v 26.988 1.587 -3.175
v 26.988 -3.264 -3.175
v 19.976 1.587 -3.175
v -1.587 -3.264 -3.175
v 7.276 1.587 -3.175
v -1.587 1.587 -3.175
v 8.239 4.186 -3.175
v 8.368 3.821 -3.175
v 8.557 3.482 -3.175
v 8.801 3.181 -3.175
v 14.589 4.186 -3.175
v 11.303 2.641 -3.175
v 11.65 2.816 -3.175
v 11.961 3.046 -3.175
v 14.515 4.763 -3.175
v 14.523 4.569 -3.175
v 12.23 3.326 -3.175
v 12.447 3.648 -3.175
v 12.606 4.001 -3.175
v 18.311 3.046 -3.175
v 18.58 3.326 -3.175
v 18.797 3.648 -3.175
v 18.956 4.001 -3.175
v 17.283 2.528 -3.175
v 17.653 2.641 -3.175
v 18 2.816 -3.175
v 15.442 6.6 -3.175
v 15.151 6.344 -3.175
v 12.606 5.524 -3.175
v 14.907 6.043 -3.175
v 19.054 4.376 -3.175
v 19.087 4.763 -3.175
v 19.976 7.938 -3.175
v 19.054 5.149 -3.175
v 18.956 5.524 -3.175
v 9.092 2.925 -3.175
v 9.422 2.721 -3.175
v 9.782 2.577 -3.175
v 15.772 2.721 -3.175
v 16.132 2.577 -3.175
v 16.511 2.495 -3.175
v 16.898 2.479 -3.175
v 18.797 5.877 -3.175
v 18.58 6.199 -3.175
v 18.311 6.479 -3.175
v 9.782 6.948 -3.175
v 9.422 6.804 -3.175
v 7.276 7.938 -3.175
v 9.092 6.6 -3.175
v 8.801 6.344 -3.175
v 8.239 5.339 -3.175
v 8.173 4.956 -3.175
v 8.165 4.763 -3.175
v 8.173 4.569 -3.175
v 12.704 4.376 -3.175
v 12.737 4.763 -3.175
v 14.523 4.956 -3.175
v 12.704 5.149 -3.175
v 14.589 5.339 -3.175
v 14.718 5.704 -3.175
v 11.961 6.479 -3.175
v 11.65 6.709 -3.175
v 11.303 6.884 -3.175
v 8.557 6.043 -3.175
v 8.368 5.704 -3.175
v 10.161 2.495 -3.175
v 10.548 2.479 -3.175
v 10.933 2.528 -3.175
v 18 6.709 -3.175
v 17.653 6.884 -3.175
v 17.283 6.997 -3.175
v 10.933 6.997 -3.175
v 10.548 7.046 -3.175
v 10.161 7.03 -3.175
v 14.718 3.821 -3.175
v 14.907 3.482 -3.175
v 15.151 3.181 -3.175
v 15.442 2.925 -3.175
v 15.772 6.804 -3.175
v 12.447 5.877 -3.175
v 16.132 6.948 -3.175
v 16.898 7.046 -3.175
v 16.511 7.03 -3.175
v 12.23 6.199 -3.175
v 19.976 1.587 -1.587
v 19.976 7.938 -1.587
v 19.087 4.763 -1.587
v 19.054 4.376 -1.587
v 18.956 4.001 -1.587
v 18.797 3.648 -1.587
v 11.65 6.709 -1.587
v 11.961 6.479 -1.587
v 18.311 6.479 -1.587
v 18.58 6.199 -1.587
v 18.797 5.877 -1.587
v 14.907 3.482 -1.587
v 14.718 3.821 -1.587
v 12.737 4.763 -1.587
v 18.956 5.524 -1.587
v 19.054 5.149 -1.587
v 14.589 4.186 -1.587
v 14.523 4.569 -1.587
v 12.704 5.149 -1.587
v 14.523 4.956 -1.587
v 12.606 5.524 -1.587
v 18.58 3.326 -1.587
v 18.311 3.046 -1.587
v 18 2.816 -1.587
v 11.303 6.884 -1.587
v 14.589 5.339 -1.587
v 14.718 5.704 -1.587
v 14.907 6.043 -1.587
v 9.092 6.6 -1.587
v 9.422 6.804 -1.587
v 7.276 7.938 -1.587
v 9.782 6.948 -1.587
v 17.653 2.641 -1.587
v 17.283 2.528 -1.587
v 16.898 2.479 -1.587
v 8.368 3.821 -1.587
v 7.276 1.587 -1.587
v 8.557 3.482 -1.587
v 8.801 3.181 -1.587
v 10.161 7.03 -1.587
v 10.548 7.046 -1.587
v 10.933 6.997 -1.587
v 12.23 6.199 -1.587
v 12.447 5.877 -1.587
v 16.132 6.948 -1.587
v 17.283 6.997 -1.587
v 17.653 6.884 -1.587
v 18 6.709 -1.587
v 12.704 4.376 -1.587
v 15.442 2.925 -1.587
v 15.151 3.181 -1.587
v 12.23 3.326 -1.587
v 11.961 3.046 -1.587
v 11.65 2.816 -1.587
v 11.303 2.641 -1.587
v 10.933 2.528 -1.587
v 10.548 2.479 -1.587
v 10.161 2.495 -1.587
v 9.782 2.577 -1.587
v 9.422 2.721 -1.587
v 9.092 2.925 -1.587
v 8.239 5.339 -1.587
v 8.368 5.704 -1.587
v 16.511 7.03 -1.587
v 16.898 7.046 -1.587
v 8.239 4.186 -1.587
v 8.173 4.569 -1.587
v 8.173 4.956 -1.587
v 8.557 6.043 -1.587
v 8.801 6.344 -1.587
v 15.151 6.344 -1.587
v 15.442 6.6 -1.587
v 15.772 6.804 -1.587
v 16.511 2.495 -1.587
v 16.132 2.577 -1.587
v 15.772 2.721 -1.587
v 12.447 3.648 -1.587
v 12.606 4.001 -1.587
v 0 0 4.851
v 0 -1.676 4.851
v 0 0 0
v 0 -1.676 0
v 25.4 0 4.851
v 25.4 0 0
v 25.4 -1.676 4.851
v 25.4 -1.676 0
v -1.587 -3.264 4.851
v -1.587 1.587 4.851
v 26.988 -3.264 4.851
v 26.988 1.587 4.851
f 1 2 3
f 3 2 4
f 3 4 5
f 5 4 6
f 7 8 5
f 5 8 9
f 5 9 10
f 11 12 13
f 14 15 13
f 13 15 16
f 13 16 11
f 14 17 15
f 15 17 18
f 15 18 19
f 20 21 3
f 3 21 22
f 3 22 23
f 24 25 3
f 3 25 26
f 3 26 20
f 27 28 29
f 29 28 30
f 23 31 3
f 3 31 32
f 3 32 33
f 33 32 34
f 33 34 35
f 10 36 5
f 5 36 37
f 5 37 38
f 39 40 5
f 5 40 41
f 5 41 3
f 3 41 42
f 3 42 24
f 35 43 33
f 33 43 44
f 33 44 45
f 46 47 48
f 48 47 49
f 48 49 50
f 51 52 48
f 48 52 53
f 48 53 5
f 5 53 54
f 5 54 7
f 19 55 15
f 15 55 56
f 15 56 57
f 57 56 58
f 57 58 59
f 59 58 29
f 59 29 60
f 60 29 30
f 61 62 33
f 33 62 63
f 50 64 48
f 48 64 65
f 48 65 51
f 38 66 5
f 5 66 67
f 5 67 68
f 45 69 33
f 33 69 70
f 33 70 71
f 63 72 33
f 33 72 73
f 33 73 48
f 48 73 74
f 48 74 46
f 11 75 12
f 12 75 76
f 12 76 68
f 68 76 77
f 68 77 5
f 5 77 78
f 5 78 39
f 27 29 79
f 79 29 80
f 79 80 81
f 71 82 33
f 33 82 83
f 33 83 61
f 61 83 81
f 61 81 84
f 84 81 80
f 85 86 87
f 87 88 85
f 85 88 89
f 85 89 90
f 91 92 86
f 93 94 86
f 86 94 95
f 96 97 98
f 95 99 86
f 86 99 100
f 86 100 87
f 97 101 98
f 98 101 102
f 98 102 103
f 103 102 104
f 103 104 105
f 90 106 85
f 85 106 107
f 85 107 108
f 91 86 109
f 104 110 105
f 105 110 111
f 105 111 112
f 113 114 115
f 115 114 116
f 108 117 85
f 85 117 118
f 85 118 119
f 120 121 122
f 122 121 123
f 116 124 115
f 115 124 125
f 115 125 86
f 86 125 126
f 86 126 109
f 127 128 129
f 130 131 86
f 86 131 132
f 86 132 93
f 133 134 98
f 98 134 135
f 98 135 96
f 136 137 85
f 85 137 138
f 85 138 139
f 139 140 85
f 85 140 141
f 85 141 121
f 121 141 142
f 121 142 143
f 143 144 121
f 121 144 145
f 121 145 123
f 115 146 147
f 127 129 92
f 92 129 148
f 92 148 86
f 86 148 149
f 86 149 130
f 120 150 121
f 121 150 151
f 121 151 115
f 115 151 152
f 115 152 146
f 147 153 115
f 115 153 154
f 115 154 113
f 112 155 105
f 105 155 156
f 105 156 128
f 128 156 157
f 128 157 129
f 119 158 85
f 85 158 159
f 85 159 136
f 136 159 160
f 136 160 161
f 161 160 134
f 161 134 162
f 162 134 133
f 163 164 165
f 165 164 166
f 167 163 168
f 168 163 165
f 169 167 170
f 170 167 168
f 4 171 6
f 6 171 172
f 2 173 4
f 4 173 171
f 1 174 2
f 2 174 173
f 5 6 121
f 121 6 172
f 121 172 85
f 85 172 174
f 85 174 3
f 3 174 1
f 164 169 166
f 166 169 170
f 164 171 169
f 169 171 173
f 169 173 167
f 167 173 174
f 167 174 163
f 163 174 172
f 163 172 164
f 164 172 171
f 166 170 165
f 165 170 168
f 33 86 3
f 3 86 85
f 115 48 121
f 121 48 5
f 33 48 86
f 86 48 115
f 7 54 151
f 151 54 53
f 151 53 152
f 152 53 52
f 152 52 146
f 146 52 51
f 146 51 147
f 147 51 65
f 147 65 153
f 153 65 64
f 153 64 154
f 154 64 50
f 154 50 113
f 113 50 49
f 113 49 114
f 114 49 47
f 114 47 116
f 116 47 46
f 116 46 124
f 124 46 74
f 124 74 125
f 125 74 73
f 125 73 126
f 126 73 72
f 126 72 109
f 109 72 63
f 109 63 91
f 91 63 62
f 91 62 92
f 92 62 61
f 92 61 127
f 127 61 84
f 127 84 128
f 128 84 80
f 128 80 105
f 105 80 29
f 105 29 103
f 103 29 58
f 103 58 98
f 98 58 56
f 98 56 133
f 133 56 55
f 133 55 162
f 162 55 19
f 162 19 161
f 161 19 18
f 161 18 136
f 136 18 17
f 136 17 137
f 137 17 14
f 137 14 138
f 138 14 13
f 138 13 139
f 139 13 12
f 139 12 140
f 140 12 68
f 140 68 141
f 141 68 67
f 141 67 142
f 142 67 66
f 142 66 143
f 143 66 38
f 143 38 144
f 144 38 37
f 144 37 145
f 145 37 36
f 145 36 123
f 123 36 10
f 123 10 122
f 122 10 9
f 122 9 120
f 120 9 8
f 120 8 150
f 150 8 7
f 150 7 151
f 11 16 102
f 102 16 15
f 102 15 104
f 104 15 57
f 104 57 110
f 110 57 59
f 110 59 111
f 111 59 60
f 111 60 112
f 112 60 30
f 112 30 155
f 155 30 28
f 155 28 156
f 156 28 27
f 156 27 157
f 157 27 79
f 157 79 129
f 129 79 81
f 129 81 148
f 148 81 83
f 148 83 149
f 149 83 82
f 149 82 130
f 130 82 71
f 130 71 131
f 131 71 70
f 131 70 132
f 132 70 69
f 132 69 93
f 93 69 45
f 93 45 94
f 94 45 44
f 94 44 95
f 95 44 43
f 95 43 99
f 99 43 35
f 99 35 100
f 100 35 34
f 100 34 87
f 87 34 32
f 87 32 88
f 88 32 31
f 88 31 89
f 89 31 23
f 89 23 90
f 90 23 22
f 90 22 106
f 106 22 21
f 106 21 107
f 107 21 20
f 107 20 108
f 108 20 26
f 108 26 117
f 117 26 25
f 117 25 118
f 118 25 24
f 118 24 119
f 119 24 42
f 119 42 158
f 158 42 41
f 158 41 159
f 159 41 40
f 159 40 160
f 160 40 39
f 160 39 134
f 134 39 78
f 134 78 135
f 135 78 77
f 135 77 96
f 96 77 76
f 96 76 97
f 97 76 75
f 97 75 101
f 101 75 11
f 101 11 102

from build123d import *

# Parameters (mm, degrees)
SKETCH1_W           = 1.5875
SKETCH1_H           = 1.5875
BOSS_EXTRUDE1_DEPTH = 4.8514
SKETCH2_W           = 28.575
SKETCH2_H           = 4.8514
BOSS_EXTRUDE2_DEPTH = 3.175
SKETCH3_W           = 6.35
SKETCH3_H           = 1.5875
BOSS_EXTRUDE3_DEPTH = 6.35
SKETCH4_R           = 2.286
CUT_EXTRUDE1_DEPTH  = 6.35


with BuildPart() as part:
    # Sketch1 → Boss-Extrude1 (new body)
    with BuildSketch(Plane.XY):
        Polygon((0, 1.5875), (0, 0), (25.4, 0), (25.4, -1.6764), (26.9875, -1.6764), (26.9875, 1.5875), align=None)
        with Locations((-0.79375, 0.79375)):
            Rectangle(SKETCH1_W, SKETCH1_H)
        Polygon((0, -1.6764), (0, 0), (-1.5875, 0), (-1.5875, -3.2639), (25.4, -3.2639), (25.4, -1.6764), align=None)
        with Locations((26.19375, -2.47015)):
            Rectangle(SKETCH1_W, SKETCH1_H)
    extrude(amount=BOSS_EXTRUDE1_DEPTH)

    # Sketch2 → Boss-Extrude2 (add)
    with BuildSketch(Plane(origin=(0, 0, 0), x_dir=(-1, 0, 0), z_dir=(0, 0, -1))):
        with Locations((-12.7, -0.8382)):
            Rectangle(SKETCH2_W, SKETCH2_H)
    extrude(amount=BOSS_EXTRUDE2_DEPTH)

    # Sketch3 → Boss-Extrude3 (add)
    with BuildSketch(Plane(origin=(0, 1.5875, 0), x_dir=(1, 0, 0), z_dir=(0, 1, 0))):
        with Locations((16.80095606, 2.38125)):
            Rectangle(SKETCH3_W, SKETCH3_H)
        Polygon((13.62595606, 3.175), (12.7, 3.175), (7.27595606, 3.175), (7.27595606, 1.5875), (13.62595606, 1.5875), align=None)
    extrude(amount=BOSS_EXTRUDE3_DEPTH)

    # Sketch4 → Cut-Extrude1 (cut)
    with BuildSketch(Plane.XY.offset(-1.5875)):
        with BuildLine():
            ThreePointArc((19.08695606, 4.7625), (16.80095606, 7.0485), (14.51495606, 4.7625))
            Line((14.51495606, 4.7625), (19.08695606, 4.7625))
        make_face()
        with BuildLine():
            Line((19.08695606, 4.7625), (14.51495606, 4.7625))
            ThreePointArc((14.51495606, 4.7625), (16.80095606, 2.4765), (19.08695606, 4.7625))
        make_face()
        with Locations((10.45095606, 4.7625)):
            Circle(SKETCH4_R)
    extrude(amount=-CUT_EXTRUDE1_DEPTH, mode=Mode.SUBTRACT)


solid = part.part
